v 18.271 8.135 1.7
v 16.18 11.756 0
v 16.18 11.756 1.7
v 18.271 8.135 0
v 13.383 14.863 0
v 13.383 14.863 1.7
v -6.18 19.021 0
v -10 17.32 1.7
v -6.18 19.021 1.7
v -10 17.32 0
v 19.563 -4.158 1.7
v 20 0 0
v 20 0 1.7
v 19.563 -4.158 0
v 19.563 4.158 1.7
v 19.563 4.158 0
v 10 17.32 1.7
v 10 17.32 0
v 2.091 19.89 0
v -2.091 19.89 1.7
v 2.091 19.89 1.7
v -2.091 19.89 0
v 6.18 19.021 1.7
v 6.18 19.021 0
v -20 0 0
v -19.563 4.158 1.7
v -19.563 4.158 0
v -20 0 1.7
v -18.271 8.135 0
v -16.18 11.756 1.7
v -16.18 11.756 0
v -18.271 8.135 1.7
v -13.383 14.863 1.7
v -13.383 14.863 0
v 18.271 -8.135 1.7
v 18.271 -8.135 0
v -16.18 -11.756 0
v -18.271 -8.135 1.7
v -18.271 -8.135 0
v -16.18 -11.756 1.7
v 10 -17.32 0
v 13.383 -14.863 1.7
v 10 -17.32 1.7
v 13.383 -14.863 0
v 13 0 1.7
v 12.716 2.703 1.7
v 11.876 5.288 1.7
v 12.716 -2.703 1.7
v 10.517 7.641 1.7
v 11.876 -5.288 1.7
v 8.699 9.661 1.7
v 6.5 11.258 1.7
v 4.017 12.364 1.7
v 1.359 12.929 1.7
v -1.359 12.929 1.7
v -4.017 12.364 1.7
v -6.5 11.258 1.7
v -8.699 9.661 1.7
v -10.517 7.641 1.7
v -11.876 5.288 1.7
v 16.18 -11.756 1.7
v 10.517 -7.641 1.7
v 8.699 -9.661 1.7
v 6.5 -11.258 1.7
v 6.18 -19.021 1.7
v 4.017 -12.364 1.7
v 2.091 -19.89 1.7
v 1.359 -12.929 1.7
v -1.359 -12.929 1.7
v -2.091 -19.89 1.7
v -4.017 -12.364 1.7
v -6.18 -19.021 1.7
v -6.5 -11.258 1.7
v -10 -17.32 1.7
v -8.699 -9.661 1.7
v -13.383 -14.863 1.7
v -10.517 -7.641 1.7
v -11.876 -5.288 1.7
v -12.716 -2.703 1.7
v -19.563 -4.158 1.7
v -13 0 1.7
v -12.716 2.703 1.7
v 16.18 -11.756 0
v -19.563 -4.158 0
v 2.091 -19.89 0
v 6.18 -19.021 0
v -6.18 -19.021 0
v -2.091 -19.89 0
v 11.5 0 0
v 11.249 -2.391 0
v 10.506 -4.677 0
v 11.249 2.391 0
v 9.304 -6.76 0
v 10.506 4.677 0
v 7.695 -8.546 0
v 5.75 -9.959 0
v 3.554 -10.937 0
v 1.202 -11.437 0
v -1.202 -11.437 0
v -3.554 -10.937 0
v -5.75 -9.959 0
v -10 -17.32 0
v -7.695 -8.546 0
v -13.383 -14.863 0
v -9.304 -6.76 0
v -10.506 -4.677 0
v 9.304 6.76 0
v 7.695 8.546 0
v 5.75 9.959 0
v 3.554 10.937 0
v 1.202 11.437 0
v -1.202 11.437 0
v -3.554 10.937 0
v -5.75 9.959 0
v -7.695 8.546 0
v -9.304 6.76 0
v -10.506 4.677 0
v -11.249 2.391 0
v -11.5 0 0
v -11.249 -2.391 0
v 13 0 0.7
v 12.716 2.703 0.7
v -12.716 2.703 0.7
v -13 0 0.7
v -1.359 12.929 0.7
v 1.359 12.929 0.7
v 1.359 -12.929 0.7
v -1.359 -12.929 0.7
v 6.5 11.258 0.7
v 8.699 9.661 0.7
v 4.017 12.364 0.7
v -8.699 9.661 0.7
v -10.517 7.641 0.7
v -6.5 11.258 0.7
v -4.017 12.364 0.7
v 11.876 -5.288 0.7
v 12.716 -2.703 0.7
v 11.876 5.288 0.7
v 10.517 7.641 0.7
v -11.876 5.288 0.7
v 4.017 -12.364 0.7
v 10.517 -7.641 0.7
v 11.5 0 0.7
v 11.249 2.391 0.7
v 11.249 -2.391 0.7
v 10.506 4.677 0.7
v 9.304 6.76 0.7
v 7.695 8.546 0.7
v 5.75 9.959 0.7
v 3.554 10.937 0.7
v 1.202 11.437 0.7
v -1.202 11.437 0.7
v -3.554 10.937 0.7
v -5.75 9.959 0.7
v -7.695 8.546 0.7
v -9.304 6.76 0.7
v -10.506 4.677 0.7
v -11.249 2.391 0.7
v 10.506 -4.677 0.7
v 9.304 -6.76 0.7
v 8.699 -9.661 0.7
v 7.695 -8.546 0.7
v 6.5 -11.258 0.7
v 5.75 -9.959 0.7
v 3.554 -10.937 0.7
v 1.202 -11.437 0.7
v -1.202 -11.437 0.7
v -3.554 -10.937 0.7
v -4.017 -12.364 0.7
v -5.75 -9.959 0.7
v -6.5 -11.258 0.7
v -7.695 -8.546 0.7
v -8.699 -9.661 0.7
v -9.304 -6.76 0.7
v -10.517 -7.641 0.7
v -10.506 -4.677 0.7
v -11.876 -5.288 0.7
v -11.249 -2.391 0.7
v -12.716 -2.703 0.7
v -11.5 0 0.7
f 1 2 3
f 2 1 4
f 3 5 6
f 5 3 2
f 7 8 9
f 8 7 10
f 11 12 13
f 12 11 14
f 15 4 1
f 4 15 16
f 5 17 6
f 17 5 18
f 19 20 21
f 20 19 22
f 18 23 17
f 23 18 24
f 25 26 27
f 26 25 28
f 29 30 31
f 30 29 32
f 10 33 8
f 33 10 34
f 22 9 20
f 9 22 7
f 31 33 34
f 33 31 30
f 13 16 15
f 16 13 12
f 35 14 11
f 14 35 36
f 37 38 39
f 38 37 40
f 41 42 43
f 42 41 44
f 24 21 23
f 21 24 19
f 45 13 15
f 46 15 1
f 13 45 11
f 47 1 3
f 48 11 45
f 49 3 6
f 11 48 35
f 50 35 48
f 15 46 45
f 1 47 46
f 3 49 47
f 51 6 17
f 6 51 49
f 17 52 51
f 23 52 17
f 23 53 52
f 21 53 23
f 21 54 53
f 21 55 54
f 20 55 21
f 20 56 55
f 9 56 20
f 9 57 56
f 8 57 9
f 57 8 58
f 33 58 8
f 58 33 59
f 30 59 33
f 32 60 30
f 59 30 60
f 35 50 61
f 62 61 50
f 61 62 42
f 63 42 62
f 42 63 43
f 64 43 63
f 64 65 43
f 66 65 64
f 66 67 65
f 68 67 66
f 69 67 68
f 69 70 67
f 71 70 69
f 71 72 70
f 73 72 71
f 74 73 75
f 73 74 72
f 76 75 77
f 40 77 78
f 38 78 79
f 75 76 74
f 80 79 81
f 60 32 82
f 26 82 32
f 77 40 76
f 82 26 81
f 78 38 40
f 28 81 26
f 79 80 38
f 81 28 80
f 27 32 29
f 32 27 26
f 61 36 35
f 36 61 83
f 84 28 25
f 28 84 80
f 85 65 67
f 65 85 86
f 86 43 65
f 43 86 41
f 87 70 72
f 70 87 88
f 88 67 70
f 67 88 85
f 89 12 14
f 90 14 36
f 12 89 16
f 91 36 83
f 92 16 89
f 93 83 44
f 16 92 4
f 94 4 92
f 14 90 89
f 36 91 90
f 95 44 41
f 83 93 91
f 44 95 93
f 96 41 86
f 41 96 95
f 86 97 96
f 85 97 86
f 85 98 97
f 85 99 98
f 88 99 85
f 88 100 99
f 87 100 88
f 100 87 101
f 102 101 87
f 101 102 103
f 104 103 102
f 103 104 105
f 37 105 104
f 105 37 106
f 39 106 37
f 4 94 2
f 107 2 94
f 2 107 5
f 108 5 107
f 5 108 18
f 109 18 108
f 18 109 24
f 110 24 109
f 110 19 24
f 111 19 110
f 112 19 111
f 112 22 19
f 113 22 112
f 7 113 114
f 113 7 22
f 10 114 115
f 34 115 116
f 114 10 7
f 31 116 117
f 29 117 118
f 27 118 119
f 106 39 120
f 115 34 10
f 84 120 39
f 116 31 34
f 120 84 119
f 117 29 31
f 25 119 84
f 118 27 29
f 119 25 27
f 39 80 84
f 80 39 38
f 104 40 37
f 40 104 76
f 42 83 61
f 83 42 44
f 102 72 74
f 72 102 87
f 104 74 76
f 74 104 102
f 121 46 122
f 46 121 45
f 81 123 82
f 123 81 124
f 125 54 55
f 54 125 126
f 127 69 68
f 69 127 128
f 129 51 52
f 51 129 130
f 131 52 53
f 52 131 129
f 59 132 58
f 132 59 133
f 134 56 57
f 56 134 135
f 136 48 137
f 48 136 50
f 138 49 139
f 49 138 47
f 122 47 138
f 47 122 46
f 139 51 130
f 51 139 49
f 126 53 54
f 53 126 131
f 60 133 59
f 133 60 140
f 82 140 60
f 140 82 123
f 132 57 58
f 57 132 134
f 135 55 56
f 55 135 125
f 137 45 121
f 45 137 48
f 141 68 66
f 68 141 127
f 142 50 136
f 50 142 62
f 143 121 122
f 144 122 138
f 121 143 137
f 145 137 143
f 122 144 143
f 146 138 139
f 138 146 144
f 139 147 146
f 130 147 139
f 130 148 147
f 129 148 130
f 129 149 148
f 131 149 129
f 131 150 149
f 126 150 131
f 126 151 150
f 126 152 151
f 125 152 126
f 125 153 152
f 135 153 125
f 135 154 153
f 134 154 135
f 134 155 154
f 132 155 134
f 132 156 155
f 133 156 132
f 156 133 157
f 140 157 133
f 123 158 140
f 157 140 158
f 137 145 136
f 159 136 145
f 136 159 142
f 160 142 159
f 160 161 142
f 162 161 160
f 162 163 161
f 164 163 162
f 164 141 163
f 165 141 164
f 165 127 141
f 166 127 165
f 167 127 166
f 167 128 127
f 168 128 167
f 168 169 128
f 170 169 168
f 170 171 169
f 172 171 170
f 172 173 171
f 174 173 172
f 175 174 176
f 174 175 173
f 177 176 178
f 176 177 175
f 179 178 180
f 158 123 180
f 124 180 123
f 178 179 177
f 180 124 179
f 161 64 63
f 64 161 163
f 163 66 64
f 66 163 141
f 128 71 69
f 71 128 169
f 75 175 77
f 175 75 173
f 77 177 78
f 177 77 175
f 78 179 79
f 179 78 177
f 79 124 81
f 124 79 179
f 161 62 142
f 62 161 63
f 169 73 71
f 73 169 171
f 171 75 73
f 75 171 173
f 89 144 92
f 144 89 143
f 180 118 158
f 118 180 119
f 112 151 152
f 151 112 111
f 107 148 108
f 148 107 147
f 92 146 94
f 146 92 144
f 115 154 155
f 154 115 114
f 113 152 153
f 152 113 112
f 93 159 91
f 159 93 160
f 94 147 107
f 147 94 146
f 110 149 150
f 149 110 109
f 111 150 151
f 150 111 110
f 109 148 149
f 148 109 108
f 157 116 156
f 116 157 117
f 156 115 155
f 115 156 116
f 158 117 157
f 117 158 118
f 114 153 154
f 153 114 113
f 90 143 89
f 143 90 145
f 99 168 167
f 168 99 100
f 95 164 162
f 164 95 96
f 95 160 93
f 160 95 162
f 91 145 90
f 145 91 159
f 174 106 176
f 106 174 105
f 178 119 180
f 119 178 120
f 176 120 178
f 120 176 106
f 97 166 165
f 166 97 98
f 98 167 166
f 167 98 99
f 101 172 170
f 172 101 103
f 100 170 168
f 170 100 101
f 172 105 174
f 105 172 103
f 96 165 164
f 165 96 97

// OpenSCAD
// Very simple adapter to hold a 1 inch disc on the microscope
// This is useful if you've got a 1 inch calibration target.
// This file is CC-0 public domain.

difference(){
    cylinder(d=40,h=1.7);
    
    translate([0,0,0.7]) cylinder(d=26,h=999);
    cylinder(d=23, h=999, center=true);
}
